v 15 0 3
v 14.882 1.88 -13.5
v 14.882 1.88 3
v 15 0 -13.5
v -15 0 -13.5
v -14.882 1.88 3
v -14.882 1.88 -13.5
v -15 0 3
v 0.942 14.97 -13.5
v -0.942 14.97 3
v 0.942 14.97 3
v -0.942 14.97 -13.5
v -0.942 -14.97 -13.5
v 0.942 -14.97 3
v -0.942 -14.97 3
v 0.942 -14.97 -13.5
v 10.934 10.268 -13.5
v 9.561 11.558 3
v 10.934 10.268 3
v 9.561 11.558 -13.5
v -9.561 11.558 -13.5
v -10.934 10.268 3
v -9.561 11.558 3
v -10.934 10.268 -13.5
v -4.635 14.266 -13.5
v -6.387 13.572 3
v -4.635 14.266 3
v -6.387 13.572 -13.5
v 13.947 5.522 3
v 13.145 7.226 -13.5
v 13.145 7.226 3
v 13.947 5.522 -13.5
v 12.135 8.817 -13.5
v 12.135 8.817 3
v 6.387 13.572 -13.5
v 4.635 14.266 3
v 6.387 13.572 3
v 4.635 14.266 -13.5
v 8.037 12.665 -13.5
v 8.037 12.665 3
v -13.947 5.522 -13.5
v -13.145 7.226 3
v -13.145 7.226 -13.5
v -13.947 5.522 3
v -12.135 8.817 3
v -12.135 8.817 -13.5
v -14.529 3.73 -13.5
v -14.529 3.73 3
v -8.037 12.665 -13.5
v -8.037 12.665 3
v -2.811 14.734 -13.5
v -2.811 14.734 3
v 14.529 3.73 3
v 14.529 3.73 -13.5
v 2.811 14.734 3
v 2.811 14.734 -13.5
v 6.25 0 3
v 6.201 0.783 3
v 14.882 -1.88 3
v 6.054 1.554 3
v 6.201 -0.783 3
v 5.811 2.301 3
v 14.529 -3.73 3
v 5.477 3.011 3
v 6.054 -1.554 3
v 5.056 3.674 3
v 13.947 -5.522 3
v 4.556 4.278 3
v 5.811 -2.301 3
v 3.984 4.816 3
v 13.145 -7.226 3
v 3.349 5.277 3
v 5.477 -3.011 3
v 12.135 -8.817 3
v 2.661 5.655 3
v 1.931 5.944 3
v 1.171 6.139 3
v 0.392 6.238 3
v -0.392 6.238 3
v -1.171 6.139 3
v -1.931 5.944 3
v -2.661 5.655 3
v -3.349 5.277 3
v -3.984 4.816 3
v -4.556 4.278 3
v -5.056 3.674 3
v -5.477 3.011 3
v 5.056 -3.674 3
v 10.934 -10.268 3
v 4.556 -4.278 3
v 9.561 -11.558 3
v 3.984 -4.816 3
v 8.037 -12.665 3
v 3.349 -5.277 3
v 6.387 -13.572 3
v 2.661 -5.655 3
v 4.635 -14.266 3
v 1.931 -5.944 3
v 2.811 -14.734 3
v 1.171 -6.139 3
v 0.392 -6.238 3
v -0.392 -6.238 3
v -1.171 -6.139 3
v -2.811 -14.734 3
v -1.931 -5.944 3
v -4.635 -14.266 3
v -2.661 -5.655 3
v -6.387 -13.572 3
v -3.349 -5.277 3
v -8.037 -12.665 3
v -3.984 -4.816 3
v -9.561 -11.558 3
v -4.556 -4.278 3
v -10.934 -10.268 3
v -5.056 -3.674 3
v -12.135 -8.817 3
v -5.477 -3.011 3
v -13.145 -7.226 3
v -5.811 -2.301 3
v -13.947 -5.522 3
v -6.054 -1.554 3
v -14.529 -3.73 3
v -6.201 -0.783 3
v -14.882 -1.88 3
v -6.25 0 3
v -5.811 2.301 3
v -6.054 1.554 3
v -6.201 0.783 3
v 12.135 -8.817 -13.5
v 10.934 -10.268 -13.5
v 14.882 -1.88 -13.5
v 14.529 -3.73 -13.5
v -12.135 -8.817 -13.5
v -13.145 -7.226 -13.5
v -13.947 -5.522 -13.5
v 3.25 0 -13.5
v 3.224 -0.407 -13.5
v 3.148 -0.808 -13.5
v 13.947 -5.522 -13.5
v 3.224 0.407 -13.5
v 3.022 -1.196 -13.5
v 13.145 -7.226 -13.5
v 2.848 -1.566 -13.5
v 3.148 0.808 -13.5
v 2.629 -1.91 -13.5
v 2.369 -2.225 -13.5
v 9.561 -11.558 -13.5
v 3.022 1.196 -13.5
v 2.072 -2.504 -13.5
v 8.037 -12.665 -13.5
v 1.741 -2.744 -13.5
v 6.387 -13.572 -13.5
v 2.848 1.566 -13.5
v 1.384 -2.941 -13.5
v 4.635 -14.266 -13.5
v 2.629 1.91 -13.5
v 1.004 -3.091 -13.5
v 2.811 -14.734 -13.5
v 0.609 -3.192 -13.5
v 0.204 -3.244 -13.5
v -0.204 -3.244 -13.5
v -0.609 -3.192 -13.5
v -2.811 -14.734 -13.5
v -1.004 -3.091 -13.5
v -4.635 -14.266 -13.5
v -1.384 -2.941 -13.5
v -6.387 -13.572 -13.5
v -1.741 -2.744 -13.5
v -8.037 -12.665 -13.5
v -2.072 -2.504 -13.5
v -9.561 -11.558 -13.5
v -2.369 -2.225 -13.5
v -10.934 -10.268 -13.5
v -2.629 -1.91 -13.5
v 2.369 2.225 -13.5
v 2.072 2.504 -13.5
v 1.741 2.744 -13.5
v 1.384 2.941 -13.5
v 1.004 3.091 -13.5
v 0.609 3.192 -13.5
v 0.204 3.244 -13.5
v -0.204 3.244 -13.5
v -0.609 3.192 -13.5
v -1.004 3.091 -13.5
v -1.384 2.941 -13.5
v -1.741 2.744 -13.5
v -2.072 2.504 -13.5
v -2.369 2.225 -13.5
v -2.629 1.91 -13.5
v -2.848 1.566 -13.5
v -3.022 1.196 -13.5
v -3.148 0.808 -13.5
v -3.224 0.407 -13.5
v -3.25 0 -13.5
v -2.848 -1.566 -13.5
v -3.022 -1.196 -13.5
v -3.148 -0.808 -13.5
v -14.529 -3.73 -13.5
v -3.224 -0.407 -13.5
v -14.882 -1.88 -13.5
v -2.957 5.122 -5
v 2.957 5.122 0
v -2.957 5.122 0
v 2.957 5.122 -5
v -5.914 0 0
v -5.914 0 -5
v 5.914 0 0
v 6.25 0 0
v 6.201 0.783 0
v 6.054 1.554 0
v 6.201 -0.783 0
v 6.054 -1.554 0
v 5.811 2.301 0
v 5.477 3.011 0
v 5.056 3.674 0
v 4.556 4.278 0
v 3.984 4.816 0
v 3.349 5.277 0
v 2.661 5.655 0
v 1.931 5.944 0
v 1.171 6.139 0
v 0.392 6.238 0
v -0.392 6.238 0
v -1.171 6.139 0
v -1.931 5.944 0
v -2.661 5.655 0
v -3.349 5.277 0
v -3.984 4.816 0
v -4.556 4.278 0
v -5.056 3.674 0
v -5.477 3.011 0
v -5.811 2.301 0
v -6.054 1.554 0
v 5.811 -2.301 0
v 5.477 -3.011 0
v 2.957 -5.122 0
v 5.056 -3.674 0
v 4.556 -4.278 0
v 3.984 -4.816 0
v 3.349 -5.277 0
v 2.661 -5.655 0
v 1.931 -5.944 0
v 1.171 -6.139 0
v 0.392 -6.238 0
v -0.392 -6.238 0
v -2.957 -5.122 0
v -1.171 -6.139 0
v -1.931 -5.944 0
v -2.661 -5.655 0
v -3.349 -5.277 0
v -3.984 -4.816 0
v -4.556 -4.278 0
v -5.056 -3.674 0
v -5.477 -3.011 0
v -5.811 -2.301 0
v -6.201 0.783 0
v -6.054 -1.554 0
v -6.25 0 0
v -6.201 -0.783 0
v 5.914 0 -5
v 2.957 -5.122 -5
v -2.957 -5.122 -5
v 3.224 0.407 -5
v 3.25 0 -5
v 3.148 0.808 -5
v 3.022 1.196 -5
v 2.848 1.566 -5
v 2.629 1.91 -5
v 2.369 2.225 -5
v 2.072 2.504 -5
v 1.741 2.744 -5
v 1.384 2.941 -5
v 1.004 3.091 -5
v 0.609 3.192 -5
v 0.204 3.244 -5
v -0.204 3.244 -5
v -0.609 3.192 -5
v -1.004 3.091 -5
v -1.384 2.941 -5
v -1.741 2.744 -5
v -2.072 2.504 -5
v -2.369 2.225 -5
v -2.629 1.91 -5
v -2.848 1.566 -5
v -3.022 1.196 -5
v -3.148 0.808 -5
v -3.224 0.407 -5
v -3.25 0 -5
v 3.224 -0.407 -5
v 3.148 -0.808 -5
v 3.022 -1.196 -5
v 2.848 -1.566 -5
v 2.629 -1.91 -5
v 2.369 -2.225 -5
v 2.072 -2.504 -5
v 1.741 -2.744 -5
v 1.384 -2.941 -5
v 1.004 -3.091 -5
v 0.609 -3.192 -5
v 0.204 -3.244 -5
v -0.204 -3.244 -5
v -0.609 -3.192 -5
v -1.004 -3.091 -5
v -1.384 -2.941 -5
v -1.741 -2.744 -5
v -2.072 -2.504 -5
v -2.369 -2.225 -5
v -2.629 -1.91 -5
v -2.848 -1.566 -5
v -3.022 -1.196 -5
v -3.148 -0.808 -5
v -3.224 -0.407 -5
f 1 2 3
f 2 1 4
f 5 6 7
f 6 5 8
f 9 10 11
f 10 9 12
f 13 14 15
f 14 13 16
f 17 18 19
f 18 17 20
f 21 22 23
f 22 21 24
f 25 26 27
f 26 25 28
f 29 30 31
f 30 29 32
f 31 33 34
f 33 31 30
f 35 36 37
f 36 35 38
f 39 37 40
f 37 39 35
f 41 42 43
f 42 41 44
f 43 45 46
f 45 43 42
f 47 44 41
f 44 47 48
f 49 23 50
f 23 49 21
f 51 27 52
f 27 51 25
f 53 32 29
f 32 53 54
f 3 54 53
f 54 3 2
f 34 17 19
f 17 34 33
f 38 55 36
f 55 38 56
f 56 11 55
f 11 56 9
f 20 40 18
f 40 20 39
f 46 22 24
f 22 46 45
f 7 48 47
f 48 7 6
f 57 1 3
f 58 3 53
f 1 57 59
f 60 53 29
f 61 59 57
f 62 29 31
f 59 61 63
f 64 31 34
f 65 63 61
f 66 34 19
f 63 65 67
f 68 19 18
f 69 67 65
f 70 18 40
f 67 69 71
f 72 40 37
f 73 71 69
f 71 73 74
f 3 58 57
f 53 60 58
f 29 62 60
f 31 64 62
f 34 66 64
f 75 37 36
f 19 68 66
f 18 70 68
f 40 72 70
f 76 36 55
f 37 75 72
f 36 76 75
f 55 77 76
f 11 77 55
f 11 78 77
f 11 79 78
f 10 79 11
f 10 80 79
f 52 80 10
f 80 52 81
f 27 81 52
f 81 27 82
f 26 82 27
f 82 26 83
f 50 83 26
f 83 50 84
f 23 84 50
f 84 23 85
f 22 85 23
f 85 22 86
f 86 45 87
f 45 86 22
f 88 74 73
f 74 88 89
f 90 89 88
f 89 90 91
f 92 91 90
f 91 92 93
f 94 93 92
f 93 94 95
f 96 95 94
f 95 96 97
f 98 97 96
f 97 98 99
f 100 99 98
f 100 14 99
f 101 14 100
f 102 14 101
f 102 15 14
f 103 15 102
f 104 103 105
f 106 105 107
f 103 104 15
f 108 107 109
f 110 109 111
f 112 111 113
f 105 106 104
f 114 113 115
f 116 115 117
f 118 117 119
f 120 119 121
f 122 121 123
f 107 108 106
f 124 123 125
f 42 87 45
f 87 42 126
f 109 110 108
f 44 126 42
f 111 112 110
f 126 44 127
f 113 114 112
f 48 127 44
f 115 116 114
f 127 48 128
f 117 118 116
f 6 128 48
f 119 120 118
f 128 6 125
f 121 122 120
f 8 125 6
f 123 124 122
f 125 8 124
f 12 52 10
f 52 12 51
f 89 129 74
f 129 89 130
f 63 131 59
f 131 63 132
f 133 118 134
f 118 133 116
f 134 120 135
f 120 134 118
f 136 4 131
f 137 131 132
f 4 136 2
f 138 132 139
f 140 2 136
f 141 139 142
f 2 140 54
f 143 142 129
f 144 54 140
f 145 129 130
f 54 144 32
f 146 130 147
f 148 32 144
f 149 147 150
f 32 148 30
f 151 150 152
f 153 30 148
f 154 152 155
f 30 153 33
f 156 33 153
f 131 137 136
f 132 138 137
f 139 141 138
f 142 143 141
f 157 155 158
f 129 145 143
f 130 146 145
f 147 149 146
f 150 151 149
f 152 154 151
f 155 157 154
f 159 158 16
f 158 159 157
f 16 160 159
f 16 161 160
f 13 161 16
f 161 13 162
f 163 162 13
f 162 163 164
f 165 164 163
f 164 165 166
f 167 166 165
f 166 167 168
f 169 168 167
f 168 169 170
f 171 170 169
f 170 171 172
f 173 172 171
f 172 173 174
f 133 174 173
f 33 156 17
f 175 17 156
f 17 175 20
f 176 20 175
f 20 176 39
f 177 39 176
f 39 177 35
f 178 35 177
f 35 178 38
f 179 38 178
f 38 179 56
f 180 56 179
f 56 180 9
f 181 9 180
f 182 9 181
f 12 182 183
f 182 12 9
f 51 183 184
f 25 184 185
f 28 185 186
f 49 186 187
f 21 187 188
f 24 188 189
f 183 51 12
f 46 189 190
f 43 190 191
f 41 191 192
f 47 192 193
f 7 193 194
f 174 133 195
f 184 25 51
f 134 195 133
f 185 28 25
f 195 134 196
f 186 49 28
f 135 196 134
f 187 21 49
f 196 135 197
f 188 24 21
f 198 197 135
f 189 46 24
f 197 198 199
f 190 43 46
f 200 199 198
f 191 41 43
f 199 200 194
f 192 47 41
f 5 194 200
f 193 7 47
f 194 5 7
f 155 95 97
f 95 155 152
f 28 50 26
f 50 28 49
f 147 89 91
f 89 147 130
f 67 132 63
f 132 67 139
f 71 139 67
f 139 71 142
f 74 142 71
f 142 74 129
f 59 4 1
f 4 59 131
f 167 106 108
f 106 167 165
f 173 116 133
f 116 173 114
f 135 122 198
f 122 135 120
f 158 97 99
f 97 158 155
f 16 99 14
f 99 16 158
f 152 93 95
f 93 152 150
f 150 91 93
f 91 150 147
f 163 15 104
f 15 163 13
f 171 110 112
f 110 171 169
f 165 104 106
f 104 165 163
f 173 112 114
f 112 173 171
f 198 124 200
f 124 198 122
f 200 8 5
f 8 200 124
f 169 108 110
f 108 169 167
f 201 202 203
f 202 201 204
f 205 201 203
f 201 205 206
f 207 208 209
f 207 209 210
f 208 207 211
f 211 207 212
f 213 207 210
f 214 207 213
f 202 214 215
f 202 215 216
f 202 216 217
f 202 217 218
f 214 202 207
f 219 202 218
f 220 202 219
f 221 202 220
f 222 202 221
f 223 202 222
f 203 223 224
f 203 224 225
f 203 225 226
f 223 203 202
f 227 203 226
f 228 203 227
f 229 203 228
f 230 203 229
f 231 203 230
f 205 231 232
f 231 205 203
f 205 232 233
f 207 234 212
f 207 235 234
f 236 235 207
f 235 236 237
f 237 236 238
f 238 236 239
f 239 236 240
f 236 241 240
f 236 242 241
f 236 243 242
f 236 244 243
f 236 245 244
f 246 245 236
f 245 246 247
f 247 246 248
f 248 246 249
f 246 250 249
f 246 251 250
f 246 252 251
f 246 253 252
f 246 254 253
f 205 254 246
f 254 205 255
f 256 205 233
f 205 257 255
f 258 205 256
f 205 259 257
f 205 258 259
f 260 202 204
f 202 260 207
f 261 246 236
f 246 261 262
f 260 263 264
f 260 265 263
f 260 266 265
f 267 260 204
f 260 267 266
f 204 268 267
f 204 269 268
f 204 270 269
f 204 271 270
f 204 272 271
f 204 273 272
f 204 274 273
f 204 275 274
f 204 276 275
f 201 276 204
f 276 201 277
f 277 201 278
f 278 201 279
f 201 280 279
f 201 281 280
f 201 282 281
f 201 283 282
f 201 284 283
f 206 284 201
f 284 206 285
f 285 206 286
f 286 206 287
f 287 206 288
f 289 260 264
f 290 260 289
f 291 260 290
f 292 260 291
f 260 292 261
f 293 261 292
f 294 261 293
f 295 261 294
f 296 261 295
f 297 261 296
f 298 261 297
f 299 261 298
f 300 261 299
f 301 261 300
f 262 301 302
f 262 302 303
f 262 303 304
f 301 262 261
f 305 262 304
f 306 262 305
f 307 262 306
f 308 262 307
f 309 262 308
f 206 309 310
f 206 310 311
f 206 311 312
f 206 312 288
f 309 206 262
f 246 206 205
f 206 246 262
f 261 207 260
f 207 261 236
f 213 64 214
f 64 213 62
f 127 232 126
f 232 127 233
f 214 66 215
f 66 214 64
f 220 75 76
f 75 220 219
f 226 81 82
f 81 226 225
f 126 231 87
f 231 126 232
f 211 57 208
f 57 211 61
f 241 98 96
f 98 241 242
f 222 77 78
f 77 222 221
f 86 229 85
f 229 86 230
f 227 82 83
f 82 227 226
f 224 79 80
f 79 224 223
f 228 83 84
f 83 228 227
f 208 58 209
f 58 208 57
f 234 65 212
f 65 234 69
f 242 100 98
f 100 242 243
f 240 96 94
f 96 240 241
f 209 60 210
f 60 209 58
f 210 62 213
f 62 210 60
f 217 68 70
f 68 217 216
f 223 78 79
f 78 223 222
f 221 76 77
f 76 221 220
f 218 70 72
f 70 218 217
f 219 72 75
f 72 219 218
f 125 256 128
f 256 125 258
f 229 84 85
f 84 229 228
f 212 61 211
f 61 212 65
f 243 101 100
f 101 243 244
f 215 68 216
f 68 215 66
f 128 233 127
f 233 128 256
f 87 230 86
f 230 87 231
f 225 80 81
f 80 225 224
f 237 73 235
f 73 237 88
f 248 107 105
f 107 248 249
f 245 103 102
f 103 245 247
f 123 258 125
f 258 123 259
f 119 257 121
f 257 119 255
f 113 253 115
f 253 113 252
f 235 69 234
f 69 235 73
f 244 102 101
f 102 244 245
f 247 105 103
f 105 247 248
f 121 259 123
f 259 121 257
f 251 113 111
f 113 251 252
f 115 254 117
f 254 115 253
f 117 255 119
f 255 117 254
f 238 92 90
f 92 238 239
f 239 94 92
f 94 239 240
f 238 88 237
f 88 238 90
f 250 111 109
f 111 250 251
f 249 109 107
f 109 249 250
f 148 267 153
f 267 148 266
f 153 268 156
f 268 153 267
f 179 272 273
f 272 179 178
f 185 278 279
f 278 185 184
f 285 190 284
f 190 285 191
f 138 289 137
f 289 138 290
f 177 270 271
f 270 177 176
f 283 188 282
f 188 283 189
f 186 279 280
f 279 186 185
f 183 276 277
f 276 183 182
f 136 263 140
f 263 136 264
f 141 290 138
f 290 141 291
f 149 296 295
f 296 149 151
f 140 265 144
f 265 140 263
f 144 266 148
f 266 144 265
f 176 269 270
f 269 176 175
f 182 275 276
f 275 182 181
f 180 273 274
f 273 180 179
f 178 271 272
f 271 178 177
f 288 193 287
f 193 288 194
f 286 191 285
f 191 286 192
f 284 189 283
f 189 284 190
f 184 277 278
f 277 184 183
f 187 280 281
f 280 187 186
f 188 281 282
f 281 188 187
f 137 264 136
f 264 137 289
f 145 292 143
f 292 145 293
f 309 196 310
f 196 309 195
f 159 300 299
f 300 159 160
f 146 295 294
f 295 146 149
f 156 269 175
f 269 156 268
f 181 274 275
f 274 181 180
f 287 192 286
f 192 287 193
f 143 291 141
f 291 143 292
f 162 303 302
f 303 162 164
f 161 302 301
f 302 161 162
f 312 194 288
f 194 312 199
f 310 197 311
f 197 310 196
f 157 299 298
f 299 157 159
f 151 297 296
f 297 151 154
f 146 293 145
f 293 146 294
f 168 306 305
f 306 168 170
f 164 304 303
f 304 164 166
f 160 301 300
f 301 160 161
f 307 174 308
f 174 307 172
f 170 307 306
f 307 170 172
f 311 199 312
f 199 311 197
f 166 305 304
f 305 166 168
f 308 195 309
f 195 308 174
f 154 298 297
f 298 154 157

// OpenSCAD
$fn = 50;

difference() {
	union() {
		translate(v = [0, 0, -13.5]) {
			cylinder(h = 16.5, r = 15.0);
		}
		#translate(v = [0, 0, -15.0]) {
			cylinder(h = 15, r = 2.875);
		}
	}
	union() {
		translate(v = [0, 0, 0]) {
			rotate(a = [0, 0, 0]) {
				difference() {
					union() {
						translate(v = [0, 0, -5]) {
							linear_extrude(height = 5) {
								polygon(points = [[5.914249999999999, 0.0], [2.957125, 5.1218907443321156], [-2.9571249999999982, 5.1218907443321156], [-5.914249999999999, 7.242867331857232e-16], [-2.9571250000000022, -5.121890744332115], [2.9571249999999956, -5.121890744332118]]);
							}
						}
					}
					union();
				}
			}
		}
		#cylinder(h = 3, r = 6.25);
		#translate(v = [0, 0, -100.0]) {
			cylinder(h = 200, r = 3.25);
		}
	}
}
